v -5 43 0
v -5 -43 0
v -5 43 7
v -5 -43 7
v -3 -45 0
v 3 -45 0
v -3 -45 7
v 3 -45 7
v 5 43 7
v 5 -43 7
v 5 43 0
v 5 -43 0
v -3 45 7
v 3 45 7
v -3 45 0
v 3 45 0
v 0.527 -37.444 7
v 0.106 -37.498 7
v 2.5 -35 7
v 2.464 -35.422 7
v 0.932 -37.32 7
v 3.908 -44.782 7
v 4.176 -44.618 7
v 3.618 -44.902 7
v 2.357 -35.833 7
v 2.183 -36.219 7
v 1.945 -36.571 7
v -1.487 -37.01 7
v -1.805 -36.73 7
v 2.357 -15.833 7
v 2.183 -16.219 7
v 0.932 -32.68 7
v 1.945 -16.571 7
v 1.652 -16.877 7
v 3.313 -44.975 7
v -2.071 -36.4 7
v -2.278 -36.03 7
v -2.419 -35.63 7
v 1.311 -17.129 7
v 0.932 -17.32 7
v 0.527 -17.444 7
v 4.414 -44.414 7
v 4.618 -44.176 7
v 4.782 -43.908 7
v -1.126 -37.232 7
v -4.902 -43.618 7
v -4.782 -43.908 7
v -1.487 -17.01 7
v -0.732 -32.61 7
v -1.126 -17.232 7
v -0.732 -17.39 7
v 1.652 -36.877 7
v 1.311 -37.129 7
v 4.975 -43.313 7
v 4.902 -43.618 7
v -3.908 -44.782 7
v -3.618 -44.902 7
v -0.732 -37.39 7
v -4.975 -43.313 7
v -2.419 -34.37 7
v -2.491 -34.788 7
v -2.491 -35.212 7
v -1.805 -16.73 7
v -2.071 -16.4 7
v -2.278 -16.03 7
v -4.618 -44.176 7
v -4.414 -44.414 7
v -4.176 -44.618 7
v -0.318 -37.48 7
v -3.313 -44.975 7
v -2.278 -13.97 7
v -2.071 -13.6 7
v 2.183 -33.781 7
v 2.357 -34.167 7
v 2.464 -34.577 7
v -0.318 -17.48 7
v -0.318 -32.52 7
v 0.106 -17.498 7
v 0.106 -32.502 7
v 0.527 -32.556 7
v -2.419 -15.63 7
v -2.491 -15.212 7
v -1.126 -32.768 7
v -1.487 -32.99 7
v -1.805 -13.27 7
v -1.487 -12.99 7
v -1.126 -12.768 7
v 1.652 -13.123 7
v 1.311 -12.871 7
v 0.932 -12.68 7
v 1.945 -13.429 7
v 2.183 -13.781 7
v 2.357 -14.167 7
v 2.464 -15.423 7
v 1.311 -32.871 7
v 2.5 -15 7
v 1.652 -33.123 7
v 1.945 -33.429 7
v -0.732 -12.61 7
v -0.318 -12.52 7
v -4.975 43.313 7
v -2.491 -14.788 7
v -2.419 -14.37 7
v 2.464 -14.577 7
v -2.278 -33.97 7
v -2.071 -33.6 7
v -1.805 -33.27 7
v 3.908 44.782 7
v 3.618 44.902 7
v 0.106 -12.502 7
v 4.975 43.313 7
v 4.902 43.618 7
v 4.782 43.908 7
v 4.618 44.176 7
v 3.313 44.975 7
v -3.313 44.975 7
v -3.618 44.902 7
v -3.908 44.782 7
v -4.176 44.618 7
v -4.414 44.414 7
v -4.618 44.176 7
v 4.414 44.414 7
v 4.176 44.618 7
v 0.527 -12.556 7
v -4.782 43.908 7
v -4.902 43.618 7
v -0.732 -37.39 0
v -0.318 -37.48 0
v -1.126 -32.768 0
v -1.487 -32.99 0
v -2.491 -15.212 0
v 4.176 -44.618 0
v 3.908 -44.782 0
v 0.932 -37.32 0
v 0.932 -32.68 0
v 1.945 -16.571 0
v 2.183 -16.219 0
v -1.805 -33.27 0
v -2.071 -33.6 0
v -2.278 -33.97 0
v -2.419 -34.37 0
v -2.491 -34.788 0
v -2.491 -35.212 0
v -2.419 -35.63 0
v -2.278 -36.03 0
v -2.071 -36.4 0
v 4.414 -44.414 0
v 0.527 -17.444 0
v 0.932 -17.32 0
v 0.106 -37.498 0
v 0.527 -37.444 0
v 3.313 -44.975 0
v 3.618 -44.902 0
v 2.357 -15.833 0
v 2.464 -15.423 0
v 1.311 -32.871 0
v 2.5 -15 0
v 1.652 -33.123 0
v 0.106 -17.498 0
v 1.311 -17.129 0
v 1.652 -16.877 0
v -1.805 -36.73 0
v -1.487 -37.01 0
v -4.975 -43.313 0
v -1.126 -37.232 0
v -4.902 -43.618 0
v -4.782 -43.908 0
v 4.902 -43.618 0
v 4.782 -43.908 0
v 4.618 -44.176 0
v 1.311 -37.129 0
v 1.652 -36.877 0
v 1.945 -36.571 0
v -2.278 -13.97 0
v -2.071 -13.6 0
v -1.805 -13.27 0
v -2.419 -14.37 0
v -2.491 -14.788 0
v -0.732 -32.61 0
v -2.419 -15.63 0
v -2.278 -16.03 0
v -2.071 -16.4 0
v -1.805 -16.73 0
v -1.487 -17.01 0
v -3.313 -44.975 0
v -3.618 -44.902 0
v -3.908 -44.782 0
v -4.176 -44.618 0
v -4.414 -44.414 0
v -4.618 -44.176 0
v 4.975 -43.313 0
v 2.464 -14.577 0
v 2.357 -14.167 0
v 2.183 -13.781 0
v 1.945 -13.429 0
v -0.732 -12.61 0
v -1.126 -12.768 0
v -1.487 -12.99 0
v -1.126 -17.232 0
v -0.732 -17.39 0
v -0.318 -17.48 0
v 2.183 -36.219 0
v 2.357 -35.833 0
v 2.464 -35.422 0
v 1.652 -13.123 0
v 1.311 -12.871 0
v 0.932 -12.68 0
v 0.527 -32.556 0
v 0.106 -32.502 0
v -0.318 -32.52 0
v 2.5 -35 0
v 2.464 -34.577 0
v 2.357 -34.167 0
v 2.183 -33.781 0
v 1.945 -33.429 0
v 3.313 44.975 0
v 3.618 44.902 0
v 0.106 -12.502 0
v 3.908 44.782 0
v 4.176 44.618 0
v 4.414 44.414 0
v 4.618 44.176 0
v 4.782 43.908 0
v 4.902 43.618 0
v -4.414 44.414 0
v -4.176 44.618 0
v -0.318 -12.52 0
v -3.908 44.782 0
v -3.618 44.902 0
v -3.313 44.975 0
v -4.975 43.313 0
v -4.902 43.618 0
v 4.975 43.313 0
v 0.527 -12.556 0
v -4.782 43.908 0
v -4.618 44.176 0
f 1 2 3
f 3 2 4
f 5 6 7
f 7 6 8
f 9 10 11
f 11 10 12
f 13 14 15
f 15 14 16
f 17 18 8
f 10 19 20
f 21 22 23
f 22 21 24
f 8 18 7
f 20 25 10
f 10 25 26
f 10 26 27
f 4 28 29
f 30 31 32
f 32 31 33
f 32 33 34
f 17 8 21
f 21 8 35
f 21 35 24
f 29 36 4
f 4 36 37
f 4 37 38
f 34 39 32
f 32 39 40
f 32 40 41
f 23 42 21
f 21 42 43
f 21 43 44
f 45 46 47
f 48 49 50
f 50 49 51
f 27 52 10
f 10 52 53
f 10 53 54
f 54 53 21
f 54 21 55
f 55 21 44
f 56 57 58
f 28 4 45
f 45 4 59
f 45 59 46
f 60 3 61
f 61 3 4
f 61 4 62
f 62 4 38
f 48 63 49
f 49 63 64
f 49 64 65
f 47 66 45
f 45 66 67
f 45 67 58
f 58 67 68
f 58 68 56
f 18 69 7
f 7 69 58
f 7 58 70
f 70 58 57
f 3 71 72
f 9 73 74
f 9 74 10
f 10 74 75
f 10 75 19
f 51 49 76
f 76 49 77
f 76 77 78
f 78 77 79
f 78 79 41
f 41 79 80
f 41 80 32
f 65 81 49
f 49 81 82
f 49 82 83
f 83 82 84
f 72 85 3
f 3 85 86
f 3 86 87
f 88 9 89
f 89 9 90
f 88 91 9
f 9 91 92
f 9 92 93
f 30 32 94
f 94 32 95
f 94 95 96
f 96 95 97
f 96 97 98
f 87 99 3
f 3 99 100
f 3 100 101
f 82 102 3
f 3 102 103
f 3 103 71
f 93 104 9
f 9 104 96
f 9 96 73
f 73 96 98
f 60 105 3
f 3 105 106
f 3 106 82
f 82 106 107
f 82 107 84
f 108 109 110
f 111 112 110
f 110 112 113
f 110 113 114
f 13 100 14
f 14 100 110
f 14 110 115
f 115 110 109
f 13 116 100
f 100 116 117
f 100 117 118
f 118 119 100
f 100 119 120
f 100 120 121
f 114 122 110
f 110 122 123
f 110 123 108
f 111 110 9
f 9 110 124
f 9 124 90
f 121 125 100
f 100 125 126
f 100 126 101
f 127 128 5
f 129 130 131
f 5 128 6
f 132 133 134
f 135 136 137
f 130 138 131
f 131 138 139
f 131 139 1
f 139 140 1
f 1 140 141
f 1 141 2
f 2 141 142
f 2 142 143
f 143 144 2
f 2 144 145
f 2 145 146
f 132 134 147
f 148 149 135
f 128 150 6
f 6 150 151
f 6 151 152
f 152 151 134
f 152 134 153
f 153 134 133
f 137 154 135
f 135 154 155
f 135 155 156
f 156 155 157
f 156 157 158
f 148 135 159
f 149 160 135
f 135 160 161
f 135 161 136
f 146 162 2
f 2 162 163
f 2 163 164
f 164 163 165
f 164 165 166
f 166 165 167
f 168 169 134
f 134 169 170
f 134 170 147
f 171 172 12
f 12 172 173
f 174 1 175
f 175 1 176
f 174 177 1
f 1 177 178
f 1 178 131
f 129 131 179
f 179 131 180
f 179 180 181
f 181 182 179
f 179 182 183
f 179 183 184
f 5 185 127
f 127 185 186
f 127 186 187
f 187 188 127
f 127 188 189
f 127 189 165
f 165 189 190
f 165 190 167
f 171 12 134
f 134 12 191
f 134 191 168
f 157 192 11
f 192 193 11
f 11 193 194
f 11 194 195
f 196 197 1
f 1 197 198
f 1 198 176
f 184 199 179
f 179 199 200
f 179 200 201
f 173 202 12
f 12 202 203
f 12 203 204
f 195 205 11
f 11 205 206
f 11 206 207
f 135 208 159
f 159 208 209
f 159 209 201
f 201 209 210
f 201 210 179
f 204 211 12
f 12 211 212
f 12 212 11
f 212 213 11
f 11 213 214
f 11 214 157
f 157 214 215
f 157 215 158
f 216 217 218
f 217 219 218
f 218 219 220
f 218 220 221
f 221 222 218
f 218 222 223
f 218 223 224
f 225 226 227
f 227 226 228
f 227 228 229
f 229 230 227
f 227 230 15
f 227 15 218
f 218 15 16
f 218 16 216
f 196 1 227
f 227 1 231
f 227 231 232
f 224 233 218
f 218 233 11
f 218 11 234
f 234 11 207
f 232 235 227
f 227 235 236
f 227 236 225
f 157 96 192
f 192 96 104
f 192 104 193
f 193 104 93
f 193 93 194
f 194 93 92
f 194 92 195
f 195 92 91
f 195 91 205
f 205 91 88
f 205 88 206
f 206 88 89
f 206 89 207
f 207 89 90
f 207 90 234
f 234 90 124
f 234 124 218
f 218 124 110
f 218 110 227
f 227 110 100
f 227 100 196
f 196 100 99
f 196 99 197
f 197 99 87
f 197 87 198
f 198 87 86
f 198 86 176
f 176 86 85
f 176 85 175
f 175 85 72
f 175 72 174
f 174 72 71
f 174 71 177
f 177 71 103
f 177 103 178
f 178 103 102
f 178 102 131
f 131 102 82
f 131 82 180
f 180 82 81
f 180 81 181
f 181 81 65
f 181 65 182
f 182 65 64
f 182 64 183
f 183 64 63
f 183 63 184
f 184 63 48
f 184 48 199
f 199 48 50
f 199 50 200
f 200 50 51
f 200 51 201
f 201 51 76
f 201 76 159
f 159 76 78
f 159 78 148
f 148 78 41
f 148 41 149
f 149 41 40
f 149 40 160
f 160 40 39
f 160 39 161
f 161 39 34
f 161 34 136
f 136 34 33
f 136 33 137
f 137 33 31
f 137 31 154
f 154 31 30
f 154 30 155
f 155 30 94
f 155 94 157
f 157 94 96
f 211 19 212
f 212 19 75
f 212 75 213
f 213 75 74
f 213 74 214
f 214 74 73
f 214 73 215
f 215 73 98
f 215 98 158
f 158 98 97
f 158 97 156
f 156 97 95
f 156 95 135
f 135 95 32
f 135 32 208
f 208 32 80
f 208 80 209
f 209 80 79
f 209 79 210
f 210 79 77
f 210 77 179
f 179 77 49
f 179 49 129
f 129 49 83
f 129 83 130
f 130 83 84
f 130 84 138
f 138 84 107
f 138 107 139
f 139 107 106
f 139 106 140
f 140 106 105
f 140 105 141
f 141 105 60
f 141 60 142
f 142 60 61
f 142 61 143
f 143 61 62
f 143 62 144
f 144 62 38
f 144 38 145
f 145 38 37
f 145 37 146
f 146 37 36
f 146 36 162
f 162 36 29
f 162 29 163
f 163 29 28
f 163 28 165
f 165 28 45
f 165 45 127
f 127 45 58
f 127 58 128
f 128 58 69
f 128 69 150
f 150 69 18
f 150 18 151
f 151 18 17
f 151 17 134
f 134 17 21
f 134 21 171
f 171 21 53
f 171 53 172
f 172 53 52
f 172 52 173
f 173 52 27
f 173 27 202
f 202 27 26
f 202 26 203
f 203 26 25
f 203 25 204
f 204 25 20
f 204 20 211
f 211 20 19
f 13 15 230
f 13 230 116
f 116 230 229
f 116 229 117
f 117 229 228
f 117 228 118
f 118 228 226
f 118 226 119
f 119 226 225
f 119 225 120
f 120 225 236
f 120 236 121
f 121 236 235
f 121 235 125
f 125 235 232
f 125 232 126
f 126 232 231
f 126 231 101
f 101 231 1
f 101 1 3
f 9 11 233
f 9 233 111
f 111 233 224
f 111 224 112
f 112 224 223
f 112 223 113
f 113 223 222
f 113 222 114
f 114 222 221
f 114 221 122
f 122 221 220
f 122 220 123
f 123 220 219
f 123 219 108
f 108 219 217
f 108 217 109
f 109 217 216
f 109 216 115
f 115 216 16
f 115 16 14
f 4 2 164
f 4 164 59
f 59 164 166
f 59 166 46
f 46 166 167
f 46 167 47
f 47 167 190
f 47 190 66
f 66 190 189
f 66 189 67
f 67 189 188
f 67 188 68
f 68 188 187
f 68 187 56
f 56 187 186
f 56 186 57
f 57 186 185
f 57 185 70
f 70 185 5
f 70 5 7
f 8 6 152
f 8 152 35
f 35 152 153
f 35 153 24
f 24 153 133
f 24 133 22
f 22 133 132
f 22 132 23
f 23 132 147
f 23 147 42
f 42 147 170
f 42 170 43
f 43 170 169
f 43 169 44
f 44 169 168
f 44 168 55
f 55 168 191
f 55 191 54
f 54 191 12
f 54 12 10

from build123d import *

# Parameters (mm, degrees)
CROQUIS1_W              = 10
CROQUIS1_H              = 90
SALIENTE_EXTRUIR1_DEPTH = 7
CROQUIS2_R              = 2.5
CORTAR_EXTRUIR1_DEPTH   = 46.814844756
REDONDEO1_R             = 2


with BuildPart() as part:
    # Croquis1 → Saliente-Extruir1 (new body)
    with BuildSketch(Plane.XY):
        Rectangle(CROQUIS1_W, CROQUIS1_H)
    extrude(amount=SALIENTE_EXTRUIR1_DEPTH)

    # Croquis2 → Cortar-Extruir1 (cut, through all)
    with BuildSketch(Plane.XY.offset(7)):
        with Locations((0, -35)):
            Circle(CROQUIS2_R)
        with Locations((0, -15)):
            Circle(CROQUIS2_R)
    extrude(amount=-CORTAR_EXTRUIR1_DEPTH, mode=Mode.SUBTRACT)

    # Redondeo1
    redondeo1_edges = [part.edges().sort_by_distance(p)[0] for p in [
        (-5, 45, 3.5),
        (5, 45, 3.5),
        (5, -45, 3.5),
        (-5, -45, 3.5),
    ]]
    fillet(redondeo1_edges, radius=REDONDEO1_R)


solid = part.part
